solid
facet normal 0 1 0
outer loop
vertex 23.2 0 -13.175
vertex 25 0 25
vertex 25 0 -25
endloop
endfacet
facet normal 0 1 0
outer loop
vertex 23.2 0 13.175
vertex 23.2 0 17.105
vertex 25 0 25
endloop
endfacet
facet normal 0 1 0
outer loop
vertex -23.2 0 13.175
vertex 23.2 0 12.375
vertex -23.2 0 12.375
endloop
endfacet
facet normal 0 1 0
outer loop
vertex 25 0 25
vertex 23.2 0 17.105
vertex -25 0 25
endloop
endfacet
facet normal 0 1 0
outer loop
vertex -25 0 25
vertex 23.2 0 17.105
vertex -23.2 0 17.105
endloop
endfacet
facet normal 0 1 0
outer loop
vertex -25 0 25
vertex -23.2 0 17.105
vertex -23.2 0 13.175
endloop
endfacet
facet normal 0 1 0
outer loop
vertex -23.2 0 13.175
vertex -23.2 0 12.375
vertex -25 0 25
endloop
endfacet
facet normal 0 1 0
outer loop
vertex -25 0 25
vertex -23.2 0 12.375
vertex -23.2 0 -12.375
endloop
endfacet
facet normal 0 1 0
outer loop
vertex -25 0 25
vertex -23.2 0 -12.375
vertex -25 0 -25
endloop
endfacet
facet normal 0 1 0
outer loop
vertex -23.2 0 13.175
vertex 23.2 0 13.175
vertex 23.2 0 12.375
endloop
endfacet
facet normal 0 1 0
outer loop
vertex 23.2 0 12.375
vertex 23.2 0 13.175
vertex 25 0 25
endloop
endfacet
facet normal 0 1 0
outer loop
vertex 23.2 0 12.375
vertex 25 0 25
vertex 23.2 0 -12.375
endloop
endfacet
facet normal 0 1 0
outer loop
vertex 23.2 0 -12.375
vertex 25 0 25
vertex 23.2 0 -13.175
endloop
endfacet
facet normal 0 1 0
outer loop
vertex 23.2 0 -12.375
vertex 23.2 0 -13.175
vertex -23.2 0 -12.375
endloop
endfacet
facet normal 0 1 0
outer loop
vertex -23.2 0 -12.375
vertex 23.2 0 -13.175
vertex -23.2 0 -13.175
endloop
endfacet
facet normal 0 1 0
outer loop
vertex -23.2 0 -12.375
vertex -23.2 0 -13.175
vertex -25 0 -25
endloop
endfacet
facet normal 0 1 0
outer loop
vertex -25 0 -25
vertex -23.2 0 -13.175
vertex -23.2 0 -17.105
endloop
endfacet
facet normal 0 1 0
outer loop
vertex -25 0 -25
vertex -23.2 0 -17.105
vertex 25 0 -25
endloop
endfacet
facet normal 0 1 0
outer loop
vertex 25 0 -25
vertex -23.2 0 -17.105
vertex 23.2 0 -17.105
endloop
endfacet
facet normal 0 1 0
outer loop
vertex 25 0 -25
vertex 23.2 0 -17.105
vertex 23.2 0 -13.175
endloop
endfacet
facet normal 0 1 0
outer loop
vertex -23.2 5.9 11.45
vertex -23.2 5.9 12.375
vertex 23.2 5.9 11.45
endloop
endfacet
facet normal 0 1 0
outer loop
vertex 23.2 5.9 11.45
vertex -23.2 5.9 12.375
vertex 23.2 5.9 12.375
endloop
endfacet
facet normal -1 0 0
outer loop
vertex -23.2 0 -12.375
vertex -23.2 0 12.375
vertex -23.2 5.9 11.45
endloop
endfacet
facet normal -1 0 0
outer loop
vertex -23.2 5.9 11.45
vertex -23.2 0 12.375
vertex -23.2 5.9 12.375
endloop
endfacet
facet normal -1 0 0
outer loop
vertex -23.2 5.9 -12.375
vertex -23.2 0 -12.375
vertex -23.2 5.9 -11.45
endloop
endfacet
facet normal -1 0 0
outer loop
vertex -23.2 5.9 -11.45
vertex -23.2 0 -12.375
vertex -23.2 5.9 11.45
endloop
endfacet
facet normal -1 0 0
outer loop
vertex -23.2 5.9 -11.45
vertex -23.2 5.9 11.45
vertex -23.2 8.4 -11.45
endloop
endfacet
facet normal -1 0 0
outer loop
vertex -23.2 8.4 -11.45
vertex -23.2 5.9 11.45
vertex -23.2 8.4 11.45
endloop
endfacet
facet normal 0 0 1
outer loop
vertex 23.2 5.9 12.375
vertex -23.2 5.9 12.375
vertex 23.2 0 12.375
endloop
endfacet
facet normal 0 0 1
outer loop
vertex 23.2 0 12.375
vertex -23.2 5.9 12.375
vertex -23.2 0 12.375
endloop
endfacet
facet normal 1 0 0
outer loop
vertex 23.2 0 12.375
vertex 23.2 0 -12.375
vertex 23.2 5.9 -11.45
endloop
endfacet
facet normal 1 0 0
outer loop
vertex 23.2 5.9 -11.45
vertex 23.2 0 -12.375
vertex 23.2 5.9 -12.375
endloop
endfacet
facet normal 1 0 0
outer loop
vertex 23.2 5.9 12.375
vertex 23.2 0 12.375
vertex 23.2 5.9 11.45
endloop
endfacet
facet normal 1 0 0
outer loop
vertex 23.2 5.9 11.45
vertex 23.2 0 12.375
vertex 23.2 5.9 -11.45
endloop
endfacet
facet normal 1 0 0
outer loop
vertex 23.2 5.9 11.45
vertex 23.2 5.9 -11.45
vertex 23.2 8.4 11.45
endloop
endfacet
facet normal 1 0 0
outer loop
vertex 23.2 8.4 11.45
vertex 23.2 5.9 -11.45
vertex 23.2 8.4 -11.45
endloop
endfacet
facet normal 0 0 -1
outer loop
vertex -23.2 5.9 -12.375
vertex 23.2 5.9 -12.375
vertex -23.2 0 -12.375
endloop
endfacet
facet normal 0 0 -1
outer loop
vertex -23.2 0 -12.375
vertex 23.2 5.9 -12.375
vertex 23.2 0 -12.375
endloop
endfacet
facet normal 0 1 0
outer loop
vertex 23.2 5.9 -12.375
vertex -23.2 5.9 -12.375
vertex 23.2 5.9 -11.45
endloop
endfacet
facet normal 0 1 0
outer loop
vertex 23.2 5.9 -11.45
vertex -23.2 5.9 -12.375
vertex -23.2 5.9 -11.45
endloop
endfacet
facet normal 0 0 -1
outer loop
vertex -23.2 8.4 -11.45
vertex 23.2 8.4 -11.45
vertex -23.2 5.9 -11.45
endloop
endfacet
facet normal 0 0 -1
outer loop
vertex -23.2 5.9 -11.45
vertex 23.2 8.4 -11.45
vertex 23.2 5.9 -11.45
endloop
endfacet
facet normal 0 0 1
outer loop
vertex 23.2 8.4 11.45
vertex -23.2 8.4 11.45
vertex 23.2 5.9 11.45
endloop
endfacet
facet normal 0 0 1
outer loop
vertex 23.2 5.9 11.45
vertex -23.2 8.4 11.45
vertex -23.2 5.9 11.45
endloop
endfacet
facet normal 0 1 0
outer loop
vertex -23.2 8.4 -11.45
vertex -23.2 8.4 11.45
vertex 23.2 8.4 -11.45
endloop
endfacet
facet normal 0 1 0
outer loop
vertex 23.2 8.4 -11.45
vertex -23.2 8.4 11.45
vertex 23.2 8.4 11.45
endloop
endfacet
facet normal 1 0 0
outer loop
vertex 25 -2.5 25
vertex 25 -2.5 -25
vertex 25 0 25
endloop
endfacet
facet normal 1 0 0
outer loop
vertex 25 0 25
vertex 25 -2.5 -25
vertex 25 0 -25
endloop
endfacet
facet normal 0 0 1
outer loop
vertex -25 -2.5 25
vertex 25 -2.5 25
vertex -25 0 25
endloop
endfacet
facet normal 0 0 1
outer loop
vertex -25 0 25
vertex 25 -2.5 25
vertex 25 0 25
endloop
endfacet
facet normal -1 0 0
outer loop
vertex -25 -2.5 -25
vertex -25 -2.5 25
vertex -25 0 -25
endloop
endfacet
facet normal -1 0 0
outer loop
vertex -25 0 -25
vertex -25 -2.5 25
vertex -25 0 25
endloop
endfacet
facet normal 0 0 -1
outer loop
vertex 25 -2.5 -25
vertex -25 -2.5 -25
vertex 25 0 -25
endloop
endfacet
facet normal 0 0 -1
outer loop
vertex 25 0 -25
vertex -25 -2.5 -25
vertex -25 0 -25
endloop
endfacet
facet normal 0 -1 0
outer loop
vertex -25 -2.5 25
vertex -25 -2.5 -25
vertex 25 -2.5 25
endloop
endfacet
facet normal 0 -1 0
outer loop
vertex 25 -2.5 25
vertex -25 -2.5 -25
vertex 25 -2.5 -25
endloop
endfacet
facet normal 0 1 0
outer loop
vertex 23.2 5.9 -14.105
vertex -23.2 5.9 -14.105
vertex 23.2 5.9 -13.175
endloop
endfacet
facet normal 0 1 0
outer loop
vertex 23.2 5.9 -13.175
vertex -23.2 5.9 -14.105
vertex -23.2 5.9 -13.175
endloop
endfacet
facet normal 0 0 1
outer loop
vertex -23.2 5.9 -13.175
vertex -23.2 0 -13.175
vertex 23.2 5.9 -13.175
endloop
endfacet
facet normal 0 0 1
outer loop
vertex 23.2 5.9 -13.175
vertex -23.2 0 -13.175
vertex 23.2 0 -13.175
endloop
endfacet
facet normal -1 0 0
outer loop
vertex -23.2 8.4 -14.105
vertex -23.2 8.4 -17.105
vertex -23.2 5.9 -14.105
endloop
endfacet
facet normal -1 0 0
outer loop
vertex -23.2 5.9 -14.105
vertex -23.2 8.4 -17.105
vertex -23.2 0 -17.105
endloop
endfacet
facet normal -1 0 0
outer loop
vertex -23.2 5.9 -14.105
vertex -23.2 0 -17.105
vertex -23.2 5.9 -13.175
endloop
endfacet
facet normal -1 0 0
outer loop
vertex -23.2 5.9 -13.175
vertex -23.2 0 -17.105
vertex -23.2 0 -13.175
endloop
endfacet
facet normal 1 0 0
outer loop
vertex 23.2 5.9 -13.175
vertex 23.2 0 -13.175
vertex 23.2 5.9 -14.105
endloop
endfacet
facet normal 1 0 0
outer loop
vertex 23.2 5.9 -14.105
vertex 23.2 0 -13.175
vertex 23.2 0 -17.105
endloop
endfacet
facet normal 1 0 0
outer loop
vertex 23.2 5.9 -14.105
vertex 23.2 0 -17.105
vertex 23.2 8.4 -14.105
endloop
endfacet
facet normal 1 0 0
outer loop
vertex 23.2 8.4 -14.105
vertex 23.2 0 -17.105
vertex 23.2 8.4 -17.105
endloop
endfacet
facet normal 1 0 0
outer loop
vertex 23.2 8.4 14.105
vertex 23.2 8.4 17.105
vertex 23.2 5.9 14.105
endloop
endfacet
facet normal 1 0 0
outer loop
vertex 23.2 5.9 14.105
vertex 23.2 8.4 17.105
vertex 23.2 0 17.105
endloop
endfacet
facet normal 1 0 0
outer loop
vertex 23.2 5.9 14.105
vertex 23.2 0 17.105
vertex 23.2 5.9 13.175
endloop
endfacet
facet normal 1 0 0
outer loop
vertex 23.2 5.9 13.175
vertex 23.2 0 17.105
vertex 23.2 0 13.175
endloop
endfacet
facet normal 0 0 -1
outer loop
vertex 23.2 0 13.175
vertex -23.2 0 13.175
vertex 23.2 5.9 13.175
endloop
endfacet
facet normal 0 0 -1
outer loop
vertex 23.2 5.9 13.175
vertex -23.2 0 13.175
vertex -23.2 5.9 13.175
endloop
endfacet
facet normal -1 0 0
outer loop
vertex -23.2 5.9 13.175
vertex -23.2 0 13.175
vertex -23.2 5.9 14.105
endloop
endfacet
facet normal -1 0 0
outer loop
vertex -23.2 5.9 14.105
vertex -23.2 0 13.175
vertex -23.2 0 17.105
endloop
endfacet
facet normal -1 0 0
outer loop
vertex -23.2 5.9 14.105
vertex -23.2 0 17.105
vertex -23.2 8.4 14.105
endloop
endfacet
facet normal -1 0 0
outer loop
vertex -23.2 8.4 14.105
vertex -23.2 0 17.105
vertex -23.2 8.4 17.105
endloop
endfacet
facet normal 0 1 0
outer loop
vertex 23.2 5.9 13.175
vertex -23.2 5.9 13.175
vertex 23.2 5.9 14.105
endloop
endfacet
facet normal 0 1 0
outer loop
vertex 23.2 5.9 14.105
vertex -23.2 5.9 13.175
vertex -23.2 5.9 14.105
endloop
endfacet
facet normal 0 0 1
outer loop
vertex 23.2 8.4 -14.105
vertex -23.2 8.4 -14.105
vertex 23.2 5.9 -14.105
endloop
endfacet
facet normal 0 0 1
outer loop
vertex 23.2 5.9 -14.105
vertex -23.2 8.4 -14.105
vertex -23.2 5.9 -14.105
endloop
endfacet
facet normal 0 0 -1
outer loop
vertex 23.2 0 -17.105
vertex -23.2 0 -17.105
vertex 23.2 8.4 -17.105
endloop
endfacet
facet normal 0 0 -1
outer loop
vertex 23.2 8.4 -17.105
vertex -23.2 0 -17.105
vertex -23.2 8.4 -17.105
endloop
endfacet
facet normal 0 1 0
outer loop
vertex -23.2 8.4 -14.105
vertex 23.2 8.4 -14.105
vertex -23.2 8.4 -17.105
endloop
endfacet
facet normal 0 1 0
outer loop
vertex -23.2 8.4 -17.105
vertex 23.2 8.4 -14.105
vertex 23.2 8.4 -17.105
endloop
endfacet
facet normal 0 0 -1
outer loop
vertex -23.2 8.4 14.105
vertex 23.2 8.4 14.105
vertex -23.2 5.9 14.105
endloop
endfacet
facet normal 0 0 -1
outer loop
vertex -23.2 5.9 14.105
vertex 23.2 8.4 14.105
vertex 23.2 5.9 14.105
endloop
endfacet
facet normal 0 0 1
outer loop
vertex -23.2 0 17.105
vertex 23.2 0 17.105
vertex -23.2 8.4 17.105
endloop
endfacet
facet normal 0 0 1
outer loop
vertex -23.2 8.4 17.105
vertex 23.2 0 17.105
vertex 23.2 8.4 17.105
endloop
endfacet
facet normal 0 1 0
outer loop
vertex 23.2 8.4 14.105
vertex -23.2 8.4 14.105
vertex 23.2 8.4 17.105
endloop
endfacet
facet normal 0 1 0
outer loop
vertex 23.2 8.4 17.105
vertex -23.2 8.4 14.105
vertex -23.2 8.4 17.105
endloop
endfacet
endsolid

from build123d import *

# Parameters (mm, degrees)
SKETCH1_W           = 46.4
SKETCH1_H           = 24.75
BOSS_EXTRUDE1_DEPTH = 5.9
BOSS_EXTRUDE2_DEPTH = 2.5
SKETCH3_W           = 50
SKETCH3_H           = 50
BOSS_EXTRUDE3_DEPTH = 2.5
SKETCH4_W           = 46.4
SKETCH4_H           = 0.93
BOSS_EXTRUDE4_DEPTH = 5.9
SKETCH5_W           = 46.4
SKETCH5_H           = 0.93
BOSS_EXTRUDE5_DEPTH = 5.9
SKETCH6_W           = 46.4
SKETCH6_H           = 3
BOSS_EXTRUDE6_DEPTH = 8.4
SKETCH7_W           = 46.4
SKETCH7_H           = 3
BOSS_EXTRUDE7_DEPTH = 8.4


with BuildPart() as part:
    # Sketch1 → Boss-Extrude1 (new body)
    with BuildSketch(Plane(origin=(0, 0, 0), x_dir=(1, 0, 0), z_dir=(0, 1, 0))):
        Rectangle(SKETCH1_W, SKETCH1_H)
    extrude(amount=BOSS_EXTRUDE1_DEPTH)

    # Sketch2 → Boss-Extrude2 (add)
    with BuildSketch(Plane(origin=(0, 5.9, 0), x_dir=(1, 0, 0), z_dir=(0, 1, 0))):
        Polygon((23.2, -11.45), (23.2, 0), (23.2, 11.45), (-23.2, 11.45), (-23.2, -11.45), align=None)
    extrude(amount=BOSS_EXTRUDE2_DEPTH)

    # Sketch3 → Boss-Extrude3 (add)
    with BuildSketch(Plane.XZ):
        Rectangle(SKETCH3_W, SKETCH3_H)
    extrude(amount=BOSS_EXTRUDE3_DEPTH)

    # Sketch4 → Boss-Extrude4 (add)
    with BuildSketch(Plane(origin=(0, 0, 0), x_dir=(1, 0, 0), z_dir=(0, 1, 0))):
        with Locations((0, 13.64)):
            Rectangle(SKETCH4_W, SKETCH4_H)
    extrude(amount=BOSS_EXTRUDE4_DEPTH)

    # Sketch5 → Boss-Extrude5 (add)
    with BuildSketch(Plane(origin=(0, 0, 0), x_dir=(1, 0, 0), z_dir=(0, 1, 0))):
        with Locations((0, -13.64)):
            Rectangle(SKETCH5_W, SKETCH5_H)
    extrude(amount=BOSS_EXTRUDE5_DEPTH)

    # Sketch6 → Boss-Extrude6 (add)
    with BuildSketch(Plane(origin=(0, 0, 0), x_dir=(1, 0, 0), z_dir=(0, 1, 0))):
        with Locations((0, 15.605)):
            Rectangle(SKETCH6_W, SKETCH6_H)
    extrude(amount=BOSS_EXTRUDE6_DEPTH)

    # Sketch7 → Boss-Extrude7 (add)
    with BuildSketch(Plane(origin=(0, 0, 0), x_dir=(1, 0, 0), z_dir=(0, 1, 0))):
        with Locations((0, -15.605)):
            Rectangle(SKETCH7_W, SKETCH7_H)
    extrude(amount=BOSS_EXTRUDE7_DEPTH)


solid = part.part
